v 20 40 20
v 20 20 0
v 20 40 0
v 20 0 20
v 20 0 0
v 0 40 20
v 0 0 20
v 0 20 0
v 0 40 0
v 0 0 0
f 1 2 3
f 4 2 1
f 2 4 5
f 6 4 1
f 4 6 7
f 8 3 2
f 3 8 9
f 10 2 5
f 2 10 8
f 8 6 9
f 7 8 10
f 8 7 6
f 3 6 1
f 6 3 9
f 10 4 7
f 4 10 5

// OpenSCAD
// Dimensions
block_width = 20;
block_depth = 40;
block_height = 20;
slope_depth = 20;  // Depth of the sloped front part
slope_height = 10; // Height difference due to the slope

module angled_block() {
    difference() {
        // Full rectangular block
        cube([block_width, block_depth, block_height]);

        // Sloped cut
        translate([0, 0, 0])
            rotate([0, 90, 0])
                linear_extrude(height = block_width)
                    polygon(points=[
                        [0, 0],
                        [block_depth - slope_depth, 0],
                        [block_depth, slope_height],
                        [block_depth, block_height],
                        [0, block_height]
                    ]);
    }
}

// Render the block
angled_block();
